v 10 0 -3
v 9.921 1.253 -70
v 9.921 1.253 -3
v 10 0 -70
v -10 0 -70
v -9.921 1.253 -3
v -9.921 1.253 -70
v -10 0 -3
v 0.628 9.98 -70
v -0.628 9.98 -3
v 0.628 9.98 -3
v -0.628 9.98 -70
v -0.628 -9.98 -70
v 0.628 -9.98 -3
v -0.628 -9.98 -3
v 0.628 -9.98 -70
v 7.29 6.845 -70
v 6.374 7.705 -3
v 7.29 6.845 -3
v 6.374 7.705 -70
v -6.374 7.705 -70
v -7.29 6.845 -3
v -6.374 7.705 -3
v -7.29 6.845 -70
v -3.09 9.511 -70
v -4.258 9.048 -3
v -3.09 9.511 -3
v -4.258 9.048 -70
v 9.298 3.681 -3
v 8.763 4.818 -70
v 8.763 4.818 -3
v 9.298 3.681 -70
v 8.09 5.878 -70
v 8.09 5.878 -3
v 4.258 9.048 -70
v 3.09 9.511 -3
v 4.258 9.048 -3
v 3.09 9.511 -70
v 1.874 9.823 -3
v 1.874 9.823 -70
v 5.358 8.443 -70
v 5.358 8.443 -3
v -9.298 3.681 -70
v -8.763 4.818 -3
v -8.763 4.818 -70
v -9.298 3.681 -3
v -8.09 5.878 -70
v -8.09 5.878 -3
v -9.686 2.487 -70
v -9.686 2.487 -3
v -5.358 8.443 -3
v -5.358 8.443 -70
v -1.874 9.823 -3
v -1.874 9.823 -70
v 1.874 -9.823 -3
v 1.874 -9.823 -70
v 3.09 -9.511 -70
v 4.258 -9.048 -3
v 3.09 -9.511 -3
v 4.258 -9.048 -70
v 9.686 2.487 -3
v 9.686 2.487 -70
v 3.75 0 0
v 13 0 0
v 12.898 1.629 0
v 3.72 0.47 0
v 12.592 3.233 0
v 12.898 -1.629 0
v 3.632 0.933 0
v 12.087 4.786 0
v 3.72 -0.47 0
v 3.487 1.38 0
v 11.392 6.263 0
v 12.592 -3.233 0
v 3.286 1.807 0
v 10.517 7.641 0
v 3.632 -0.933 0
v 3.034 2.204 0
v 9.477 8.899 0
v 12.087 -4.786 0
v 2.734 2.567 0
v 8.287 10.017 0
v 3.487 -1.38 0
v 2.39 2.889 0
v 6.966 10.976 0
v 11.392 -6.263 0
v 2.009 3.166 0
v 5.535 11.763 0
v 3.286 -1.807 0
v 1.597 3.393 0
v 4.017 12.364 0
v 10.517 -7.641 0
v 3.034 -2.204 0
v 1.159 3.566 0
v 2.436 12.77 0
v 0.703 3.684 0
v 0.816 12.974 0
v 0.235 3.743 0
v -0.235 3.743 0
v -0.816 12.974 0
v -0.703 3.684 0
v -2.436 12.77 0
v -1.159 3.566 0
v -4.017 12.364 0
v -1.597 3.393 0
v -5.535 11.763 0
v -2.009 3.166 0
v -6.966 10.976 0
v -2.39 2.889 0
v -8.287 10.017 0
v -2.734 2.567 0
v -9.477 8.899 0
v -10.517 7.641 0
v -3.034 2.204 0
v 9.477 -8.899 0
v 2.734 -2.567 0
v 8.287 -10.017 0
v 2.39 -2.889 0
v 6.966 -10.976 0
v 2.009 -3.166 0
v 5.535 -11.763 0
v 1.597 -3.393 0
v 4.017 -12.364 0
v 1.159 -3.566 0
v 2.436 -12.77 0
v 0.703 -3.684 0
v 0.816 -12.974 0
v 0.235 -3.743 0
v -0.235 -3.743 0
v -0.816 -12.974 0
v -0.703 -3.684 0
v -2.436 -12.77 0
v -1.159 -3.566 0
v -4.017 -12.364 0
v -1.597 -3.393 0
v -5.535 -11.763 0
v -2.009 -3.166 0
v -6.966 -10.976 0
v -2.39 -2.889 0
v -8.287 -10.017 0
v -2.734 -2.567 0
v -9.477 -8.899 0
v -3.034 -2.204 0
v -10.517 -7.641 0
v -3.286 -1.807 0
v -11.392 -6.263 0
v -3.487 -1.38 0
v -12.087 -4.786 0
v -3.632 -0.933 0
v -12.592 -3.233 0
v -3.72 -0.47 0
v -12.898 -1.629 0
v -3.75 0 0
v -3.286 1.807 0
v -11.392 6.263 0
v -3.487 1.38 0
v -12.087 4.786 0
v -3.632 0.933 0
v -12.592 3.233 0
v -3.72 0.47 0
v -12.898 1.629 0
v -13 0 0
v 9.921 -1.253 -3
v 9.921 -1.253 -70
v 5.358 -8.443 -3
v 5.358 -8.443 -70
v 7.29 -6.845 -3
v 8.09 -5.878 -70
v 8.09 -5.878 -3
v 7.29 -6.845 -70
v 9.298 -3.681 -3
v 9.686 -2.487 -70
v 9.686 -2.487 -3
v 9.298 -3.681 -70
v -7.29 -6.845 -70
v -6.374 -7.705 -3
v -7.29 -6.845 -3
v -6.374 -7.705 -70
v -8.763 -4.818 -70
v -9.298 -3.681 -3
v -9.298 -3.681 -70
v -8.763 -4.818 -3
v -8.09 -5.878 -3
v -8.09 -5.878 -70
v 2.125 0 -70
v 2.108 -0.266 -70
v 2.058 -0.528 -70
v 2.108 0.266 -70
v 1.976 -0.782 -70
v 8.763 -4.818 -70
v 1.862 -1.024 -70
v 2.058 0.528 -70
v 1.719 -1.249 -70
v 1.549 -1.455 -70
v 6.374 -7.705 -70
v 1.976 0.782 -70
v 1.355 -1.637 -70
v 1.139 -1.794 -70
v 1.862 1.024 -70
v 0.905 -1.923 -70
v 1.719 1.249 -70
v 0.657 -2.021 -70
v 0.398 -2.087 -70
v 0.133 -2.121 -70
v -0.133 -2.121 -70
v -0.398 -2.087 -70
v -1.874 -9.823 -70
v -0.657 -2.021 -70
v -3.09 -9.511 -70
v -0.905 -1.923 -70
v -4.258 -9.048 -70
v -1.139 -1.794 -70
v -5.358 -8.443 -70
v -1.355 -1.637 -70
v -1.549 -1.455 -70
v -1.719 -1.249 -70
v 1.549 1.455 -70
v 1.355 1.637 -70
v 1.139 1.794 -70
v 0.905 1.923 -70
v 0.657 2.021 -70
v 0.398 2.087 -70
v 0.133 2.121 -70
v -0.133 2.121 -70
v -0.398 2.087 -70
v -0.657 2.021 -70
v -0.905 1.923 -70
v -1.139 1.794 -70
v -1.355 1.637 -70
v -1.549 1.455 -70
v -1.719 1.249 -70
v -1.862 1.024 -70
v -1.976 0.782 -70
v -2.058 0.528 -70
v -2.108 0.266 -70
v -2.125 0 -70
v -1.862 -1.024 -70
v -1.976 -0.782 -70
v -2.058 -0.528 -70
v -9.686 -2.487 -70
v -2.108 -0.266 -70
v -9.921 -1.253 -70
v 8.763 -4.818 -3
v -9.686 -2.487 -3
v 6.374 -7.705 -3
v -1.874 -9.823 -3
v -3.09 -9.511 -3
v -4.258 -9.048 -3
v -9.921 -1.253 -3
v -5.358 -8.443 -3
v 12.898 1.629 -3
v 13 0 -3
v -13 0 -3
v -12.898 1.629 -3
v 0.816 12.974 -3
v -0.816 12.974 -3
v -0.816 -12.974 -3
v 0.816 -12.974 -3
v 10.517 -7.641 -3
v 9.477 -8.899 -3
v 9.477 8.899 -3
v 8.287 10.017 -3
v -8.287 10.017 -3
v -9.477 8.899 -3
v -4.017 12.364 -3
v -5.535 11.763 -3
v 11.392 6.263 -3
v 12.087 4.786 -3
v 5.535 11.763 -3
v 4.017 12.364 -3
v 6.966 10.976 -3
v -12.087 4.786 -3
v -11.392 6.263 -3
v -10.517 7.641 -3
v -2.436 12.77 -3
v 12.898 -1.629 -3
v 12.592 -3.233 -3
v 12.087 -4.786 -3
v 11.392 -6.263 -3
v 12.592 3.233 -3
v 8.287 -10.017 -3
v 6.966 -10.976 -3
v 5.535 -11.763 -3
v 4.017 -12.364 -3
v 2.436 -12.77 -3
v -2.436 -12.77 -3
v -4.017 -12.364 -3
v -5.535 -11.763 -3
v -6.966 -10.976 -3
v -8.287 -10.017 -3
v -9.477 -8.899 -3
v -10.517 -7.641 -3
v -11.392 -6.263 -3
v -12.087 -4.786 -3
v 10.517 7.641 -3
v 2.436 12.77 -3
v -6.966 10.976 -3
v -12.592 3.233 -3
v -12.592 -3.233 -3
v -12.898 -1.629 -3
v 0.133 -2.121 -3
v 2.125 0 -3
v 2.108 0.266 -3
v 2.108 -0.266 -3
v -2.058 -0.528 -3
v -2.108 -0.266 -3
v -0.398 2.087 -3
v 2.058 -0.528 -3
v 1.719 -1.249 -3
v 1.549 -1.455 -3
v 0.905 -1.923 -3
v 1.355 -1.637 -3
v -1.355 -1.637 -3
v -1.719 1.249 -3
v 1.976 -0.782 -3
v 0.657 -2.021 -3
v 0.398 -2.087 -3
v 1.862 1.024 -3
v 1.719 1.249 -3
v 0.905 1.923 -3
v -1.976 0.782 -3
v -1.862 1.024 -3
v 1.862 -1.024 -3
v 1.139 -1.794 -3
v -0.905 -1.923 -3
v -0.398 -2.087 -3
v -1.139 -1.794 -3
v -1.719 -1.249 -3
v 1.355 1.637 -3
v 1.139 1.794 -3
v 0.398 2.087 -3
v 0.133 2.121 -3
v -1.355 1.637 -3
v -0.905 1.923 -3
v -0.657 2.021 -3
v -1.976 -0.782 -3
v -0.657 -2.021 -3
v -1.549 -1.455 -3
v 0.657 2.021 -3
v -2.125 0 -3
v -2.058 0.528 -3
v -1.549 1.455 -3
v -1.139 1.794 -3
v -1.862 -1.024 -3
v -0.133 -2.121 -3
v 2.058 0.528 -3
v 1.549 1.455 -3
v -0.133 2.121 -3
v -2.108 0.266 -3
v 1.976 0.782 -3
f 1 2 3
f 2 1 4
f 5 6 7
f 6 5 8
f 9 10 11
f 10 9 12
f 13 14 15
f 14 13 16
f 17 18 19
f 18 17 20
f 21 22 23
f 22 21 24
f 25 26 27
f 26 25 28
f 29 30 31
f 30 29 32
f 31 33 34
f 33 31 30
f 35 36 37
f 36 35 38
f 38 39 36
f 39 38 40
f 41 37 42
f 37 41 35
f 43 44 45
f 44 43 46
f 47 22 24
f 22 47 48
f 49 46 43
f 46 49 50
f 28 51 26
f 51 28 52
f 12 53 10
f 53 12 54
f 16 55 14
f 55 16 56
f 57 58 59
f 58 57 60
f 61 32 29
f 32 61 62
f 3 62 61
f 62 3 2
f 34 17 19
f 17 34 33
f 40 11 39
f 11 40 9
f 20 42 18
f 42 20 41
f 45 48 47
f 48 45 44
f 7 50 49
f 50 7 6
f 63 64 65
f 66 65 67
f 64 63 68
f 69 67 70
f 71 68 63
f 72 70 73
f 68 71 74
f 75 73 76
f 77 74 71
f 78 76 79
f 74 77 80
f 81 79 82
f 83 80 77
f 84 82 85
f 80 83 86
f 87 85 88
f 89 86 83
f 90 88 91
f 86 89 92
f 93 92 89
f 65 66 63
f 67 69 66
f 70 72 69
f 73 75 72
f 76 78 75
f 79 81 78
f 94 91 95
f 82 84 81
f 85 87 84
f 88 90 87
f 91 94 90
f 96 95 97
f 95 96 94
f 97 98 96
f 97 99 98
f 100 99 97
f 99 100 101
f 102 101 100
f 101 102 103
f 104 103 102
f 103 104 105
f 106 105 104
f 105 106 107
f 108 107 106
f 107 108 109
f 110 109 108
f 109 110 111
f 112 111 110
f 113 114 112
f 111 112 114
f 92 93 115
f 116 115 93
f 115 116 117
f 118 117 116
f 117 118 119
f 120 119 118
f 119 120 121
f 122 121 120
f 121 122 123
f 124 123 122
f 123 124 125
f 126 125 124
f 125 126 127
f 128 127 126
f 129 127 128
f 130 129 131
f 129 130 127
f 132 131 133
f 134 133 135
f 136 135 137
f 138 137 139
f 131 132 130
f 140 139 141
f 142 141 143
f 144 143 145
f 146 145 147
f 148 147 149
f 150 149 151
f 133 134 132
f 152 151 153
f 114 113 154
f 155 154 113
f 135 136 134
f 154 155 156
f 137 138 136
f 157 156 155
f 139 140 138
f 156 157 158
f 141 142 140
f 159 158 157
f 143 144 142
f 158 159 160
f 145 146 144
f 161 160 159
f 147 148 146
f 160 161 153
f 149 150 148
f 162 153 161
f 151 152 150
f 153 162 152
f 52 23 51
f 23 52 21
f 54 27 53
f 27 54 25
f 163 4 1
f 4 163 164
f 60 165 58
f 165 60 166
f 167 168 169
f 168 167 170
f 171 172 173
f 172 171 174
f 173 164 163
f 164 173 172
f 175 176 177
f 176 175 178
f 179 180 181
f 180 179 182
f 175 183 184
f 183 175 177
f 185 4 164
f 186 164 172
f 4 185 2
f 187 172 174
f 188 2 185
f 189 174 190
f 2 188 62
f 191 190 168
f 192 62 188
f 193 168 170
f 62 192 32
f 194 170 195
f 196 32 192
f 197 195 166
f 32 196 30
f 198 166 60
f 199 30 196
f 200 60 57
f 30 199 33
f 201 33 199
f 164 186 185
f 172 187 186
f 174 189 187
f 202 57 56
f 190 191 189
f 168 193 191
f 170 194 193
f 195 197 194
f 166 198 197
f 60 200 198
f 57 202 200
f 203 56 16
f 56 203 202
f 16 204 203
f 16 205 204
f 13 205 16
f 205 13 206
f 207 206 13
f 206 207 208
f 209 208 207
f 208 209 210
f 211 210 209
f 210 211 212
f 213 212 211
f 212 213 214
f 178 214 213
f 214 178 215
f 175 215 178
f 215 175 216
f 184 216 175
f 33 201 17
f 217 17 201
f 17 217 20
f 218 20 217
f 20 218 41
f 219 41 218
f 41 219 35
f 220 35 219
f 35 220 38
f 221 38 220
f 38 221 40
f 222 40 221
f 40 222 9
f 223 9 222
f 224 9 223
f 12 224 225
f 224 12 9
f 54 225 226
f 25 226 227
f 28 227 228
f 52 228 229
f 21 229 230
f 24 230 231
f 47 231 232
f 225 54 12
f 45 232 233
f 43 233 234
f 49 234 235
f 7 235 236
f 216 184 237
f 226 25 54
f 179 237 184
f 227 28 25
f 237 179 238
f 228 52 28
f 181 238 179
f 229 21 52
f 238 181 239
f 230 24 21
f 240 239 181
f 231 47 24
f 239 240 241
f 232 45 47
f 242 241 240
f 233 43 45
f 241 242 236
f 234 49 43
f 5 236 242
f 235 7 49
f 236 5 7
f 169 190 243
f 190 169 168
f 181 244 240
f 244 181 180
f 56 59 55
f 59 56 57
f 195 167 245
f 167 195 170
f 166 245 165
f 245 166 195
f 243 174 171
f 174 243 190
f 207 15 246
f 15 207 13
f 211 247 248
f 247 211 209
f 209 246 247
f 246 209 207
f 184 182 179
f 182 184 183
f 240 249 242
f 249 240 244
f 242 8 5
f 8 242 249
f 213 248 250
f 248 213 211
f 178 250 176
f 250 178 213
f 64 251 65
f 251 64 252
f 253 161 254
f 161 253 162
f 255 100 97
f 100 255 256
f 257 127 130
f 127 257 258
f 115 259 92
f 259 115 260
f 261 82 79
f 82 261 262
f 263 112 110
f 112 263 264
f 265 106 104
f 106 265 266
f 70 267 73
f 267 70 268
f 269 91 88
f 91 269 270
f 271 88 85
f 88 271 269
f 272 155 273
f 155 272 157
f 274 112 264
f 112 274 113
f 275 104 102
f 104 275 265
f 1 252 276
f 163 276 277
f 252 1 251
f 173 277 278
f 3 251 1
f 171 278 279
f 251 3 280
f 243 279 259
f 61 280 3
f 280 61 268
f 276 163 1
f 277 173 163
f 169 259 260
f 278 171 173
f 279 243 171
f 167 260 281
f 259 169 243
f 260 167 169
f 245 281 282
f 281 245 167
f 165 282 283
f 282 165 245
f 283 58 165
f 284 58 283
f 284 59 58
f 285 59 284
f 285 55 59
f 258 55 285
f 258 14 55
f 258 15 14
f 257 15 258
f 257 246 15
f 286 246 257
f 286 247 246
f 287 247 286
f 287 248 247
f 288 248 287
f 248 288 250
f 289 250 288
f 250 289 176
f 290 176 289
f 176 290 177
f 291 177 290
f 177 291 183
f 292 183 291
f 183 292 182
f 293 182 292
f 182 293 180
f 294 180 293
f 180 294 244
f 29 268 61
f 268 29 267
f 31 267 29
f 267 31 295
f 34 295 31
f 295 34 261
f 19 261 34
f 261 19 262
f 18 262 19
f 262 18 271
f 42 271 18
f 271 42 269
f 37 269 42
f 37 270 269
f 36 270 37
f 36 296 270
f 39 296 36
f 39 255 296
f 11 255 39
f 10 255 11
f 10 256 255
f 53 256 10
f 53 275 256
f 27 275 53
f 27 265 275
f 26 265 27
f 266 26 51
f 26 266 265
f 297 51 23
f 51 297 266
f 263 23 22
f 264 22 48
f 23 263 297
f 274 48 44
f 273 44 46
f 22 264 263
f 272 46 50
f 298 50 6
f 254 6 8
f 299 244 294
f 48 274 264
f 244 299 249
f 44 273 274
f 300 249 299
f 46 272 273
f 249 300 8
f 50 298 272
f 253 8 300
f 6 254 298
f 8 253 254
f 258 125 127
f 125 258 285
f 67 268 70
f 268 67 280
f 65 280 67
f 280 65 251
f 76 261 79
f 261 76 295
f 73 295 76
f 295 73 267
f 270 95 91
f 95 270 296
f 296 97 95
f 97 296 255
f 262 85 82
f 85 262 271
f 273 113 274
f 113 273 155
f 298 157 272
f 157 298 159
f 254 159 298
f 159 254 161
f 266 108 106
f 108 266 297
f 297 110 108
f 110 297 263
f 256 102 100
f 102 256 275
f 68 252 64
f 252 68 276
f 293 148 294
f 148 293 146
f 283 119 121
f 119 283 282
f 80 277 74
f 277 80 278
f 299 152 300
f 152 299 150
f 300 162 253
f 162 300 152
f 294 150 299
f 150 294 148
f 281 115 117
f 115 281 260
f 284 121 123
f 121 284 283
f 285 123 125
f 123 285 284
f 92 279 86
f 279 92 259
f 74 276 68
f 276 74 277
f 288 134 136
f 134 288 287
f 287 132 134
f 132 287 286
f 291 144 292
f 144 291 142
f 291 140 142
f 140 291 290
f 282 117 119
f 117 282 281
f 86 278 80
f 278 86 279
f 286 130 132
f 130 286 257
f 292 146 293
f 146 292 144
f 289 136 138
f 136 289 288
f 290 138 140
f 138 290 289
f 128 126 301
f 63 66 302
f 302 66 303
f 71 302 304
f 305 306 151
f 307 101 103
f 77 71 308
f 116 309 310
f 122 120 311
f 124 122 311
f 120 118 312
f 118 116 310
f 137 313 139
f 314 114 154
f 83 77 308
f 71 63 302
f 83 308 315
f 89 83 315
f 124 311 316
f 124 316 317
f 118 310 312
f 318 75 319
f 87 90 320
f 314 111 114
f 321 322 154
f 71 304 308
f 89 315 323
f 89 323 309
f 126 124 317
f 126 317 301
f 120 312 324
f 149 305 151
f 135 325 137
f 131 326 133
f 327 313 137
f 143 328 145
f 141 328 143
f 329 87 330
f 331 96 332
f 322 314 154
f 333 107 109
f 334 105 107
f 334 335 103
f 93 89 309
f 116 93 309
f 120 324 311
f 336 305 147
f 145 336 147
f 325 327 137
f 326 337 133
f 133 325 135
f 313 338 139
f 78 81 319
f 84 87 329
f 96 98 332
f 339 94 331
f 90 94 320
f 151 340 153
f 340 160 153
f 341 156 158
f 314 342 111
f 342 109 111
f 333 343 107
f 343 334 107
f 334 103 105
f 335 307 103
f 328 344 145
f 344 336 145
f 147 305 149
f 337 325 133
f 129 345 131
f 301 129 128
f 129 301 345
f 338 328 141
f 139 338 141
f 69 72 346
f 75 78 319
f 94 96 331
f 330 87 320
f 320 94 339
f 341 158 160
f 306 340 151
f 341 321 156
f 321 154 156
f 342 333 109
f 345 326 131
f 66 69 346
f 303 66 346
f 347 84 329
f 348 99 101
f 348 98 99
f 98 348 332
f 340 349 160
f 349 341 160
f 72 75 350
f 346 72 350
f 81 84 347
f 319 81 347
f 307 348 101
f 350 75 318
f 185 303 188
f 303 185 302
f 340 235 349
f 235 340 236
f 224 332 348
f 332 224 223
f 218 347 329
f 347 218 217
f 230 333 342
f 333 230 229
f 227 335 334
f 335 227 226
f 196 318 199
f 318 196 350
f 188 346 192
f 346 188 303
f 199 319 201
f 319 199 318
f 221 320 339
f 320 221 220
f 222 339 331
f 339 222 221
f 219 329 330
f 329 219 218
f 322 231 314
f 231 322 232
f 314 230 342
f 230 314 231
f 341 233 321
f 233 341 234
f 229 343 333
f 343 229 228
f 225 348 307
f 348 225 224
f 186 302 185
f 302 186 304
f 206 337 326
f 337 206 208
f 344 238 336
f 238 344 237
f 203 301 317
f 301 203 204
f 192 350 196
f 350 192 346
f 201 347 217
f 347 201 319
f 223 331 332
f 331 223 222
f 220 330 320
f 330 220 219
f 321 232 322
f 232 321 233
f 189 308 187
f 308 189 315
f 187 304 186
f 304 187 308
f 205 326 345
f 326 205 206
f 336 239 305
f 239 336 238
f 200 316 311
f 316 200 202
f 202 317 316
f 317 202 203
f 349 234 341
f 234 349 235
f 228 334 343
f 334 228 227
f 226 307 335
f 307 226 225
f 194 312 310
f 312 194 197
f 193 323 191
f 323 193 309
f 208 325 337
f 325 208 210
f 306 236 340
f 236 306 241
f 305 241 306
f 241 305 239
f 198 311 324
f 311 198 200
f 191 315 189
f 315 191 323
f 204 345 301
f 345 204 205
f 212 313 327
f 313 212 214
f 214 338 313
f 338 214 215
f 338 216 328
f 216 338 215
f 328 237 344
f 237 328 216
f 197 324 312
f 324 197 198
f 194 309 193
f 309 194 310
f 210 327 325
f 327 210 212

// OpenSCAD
$fn = 50;


difference() {
	union() {
		translate(v = [0, 0, -70.0000000000]) {
			cylinder(h = 70, r = 10.0000000000);
		}
		translate(v = [0, 0, -3.0000000000]) {
			cylinder(h = 3, r = 13.0000000000);
		}
	}
	union() {
		translate(v = [0, 0, 0]) {
			rotate(a = [0, 0, 0]) {
				difference() {
					union() {
						#translate(v = [0, 0, -70.0000000000]) {
							cylinder(h = 70, r = 2.0000000000);
						}
						#translate(v = [0, 0, -3]) {
							cylinder(h = 3, r1 = 2.1250000000, r2 = 3.7500000000);
						}
						#translate(v = [0, 0, -70.0000000000]) {
							cylinder(h = 70, r = 2.1250000000);
						}
						#translate(v = [0, 0, -70.0000000000]) {
							cylinder(h = 70, r = 2.0000000000);
						}
					}
					union();
				}
			}
		}
	}
}
